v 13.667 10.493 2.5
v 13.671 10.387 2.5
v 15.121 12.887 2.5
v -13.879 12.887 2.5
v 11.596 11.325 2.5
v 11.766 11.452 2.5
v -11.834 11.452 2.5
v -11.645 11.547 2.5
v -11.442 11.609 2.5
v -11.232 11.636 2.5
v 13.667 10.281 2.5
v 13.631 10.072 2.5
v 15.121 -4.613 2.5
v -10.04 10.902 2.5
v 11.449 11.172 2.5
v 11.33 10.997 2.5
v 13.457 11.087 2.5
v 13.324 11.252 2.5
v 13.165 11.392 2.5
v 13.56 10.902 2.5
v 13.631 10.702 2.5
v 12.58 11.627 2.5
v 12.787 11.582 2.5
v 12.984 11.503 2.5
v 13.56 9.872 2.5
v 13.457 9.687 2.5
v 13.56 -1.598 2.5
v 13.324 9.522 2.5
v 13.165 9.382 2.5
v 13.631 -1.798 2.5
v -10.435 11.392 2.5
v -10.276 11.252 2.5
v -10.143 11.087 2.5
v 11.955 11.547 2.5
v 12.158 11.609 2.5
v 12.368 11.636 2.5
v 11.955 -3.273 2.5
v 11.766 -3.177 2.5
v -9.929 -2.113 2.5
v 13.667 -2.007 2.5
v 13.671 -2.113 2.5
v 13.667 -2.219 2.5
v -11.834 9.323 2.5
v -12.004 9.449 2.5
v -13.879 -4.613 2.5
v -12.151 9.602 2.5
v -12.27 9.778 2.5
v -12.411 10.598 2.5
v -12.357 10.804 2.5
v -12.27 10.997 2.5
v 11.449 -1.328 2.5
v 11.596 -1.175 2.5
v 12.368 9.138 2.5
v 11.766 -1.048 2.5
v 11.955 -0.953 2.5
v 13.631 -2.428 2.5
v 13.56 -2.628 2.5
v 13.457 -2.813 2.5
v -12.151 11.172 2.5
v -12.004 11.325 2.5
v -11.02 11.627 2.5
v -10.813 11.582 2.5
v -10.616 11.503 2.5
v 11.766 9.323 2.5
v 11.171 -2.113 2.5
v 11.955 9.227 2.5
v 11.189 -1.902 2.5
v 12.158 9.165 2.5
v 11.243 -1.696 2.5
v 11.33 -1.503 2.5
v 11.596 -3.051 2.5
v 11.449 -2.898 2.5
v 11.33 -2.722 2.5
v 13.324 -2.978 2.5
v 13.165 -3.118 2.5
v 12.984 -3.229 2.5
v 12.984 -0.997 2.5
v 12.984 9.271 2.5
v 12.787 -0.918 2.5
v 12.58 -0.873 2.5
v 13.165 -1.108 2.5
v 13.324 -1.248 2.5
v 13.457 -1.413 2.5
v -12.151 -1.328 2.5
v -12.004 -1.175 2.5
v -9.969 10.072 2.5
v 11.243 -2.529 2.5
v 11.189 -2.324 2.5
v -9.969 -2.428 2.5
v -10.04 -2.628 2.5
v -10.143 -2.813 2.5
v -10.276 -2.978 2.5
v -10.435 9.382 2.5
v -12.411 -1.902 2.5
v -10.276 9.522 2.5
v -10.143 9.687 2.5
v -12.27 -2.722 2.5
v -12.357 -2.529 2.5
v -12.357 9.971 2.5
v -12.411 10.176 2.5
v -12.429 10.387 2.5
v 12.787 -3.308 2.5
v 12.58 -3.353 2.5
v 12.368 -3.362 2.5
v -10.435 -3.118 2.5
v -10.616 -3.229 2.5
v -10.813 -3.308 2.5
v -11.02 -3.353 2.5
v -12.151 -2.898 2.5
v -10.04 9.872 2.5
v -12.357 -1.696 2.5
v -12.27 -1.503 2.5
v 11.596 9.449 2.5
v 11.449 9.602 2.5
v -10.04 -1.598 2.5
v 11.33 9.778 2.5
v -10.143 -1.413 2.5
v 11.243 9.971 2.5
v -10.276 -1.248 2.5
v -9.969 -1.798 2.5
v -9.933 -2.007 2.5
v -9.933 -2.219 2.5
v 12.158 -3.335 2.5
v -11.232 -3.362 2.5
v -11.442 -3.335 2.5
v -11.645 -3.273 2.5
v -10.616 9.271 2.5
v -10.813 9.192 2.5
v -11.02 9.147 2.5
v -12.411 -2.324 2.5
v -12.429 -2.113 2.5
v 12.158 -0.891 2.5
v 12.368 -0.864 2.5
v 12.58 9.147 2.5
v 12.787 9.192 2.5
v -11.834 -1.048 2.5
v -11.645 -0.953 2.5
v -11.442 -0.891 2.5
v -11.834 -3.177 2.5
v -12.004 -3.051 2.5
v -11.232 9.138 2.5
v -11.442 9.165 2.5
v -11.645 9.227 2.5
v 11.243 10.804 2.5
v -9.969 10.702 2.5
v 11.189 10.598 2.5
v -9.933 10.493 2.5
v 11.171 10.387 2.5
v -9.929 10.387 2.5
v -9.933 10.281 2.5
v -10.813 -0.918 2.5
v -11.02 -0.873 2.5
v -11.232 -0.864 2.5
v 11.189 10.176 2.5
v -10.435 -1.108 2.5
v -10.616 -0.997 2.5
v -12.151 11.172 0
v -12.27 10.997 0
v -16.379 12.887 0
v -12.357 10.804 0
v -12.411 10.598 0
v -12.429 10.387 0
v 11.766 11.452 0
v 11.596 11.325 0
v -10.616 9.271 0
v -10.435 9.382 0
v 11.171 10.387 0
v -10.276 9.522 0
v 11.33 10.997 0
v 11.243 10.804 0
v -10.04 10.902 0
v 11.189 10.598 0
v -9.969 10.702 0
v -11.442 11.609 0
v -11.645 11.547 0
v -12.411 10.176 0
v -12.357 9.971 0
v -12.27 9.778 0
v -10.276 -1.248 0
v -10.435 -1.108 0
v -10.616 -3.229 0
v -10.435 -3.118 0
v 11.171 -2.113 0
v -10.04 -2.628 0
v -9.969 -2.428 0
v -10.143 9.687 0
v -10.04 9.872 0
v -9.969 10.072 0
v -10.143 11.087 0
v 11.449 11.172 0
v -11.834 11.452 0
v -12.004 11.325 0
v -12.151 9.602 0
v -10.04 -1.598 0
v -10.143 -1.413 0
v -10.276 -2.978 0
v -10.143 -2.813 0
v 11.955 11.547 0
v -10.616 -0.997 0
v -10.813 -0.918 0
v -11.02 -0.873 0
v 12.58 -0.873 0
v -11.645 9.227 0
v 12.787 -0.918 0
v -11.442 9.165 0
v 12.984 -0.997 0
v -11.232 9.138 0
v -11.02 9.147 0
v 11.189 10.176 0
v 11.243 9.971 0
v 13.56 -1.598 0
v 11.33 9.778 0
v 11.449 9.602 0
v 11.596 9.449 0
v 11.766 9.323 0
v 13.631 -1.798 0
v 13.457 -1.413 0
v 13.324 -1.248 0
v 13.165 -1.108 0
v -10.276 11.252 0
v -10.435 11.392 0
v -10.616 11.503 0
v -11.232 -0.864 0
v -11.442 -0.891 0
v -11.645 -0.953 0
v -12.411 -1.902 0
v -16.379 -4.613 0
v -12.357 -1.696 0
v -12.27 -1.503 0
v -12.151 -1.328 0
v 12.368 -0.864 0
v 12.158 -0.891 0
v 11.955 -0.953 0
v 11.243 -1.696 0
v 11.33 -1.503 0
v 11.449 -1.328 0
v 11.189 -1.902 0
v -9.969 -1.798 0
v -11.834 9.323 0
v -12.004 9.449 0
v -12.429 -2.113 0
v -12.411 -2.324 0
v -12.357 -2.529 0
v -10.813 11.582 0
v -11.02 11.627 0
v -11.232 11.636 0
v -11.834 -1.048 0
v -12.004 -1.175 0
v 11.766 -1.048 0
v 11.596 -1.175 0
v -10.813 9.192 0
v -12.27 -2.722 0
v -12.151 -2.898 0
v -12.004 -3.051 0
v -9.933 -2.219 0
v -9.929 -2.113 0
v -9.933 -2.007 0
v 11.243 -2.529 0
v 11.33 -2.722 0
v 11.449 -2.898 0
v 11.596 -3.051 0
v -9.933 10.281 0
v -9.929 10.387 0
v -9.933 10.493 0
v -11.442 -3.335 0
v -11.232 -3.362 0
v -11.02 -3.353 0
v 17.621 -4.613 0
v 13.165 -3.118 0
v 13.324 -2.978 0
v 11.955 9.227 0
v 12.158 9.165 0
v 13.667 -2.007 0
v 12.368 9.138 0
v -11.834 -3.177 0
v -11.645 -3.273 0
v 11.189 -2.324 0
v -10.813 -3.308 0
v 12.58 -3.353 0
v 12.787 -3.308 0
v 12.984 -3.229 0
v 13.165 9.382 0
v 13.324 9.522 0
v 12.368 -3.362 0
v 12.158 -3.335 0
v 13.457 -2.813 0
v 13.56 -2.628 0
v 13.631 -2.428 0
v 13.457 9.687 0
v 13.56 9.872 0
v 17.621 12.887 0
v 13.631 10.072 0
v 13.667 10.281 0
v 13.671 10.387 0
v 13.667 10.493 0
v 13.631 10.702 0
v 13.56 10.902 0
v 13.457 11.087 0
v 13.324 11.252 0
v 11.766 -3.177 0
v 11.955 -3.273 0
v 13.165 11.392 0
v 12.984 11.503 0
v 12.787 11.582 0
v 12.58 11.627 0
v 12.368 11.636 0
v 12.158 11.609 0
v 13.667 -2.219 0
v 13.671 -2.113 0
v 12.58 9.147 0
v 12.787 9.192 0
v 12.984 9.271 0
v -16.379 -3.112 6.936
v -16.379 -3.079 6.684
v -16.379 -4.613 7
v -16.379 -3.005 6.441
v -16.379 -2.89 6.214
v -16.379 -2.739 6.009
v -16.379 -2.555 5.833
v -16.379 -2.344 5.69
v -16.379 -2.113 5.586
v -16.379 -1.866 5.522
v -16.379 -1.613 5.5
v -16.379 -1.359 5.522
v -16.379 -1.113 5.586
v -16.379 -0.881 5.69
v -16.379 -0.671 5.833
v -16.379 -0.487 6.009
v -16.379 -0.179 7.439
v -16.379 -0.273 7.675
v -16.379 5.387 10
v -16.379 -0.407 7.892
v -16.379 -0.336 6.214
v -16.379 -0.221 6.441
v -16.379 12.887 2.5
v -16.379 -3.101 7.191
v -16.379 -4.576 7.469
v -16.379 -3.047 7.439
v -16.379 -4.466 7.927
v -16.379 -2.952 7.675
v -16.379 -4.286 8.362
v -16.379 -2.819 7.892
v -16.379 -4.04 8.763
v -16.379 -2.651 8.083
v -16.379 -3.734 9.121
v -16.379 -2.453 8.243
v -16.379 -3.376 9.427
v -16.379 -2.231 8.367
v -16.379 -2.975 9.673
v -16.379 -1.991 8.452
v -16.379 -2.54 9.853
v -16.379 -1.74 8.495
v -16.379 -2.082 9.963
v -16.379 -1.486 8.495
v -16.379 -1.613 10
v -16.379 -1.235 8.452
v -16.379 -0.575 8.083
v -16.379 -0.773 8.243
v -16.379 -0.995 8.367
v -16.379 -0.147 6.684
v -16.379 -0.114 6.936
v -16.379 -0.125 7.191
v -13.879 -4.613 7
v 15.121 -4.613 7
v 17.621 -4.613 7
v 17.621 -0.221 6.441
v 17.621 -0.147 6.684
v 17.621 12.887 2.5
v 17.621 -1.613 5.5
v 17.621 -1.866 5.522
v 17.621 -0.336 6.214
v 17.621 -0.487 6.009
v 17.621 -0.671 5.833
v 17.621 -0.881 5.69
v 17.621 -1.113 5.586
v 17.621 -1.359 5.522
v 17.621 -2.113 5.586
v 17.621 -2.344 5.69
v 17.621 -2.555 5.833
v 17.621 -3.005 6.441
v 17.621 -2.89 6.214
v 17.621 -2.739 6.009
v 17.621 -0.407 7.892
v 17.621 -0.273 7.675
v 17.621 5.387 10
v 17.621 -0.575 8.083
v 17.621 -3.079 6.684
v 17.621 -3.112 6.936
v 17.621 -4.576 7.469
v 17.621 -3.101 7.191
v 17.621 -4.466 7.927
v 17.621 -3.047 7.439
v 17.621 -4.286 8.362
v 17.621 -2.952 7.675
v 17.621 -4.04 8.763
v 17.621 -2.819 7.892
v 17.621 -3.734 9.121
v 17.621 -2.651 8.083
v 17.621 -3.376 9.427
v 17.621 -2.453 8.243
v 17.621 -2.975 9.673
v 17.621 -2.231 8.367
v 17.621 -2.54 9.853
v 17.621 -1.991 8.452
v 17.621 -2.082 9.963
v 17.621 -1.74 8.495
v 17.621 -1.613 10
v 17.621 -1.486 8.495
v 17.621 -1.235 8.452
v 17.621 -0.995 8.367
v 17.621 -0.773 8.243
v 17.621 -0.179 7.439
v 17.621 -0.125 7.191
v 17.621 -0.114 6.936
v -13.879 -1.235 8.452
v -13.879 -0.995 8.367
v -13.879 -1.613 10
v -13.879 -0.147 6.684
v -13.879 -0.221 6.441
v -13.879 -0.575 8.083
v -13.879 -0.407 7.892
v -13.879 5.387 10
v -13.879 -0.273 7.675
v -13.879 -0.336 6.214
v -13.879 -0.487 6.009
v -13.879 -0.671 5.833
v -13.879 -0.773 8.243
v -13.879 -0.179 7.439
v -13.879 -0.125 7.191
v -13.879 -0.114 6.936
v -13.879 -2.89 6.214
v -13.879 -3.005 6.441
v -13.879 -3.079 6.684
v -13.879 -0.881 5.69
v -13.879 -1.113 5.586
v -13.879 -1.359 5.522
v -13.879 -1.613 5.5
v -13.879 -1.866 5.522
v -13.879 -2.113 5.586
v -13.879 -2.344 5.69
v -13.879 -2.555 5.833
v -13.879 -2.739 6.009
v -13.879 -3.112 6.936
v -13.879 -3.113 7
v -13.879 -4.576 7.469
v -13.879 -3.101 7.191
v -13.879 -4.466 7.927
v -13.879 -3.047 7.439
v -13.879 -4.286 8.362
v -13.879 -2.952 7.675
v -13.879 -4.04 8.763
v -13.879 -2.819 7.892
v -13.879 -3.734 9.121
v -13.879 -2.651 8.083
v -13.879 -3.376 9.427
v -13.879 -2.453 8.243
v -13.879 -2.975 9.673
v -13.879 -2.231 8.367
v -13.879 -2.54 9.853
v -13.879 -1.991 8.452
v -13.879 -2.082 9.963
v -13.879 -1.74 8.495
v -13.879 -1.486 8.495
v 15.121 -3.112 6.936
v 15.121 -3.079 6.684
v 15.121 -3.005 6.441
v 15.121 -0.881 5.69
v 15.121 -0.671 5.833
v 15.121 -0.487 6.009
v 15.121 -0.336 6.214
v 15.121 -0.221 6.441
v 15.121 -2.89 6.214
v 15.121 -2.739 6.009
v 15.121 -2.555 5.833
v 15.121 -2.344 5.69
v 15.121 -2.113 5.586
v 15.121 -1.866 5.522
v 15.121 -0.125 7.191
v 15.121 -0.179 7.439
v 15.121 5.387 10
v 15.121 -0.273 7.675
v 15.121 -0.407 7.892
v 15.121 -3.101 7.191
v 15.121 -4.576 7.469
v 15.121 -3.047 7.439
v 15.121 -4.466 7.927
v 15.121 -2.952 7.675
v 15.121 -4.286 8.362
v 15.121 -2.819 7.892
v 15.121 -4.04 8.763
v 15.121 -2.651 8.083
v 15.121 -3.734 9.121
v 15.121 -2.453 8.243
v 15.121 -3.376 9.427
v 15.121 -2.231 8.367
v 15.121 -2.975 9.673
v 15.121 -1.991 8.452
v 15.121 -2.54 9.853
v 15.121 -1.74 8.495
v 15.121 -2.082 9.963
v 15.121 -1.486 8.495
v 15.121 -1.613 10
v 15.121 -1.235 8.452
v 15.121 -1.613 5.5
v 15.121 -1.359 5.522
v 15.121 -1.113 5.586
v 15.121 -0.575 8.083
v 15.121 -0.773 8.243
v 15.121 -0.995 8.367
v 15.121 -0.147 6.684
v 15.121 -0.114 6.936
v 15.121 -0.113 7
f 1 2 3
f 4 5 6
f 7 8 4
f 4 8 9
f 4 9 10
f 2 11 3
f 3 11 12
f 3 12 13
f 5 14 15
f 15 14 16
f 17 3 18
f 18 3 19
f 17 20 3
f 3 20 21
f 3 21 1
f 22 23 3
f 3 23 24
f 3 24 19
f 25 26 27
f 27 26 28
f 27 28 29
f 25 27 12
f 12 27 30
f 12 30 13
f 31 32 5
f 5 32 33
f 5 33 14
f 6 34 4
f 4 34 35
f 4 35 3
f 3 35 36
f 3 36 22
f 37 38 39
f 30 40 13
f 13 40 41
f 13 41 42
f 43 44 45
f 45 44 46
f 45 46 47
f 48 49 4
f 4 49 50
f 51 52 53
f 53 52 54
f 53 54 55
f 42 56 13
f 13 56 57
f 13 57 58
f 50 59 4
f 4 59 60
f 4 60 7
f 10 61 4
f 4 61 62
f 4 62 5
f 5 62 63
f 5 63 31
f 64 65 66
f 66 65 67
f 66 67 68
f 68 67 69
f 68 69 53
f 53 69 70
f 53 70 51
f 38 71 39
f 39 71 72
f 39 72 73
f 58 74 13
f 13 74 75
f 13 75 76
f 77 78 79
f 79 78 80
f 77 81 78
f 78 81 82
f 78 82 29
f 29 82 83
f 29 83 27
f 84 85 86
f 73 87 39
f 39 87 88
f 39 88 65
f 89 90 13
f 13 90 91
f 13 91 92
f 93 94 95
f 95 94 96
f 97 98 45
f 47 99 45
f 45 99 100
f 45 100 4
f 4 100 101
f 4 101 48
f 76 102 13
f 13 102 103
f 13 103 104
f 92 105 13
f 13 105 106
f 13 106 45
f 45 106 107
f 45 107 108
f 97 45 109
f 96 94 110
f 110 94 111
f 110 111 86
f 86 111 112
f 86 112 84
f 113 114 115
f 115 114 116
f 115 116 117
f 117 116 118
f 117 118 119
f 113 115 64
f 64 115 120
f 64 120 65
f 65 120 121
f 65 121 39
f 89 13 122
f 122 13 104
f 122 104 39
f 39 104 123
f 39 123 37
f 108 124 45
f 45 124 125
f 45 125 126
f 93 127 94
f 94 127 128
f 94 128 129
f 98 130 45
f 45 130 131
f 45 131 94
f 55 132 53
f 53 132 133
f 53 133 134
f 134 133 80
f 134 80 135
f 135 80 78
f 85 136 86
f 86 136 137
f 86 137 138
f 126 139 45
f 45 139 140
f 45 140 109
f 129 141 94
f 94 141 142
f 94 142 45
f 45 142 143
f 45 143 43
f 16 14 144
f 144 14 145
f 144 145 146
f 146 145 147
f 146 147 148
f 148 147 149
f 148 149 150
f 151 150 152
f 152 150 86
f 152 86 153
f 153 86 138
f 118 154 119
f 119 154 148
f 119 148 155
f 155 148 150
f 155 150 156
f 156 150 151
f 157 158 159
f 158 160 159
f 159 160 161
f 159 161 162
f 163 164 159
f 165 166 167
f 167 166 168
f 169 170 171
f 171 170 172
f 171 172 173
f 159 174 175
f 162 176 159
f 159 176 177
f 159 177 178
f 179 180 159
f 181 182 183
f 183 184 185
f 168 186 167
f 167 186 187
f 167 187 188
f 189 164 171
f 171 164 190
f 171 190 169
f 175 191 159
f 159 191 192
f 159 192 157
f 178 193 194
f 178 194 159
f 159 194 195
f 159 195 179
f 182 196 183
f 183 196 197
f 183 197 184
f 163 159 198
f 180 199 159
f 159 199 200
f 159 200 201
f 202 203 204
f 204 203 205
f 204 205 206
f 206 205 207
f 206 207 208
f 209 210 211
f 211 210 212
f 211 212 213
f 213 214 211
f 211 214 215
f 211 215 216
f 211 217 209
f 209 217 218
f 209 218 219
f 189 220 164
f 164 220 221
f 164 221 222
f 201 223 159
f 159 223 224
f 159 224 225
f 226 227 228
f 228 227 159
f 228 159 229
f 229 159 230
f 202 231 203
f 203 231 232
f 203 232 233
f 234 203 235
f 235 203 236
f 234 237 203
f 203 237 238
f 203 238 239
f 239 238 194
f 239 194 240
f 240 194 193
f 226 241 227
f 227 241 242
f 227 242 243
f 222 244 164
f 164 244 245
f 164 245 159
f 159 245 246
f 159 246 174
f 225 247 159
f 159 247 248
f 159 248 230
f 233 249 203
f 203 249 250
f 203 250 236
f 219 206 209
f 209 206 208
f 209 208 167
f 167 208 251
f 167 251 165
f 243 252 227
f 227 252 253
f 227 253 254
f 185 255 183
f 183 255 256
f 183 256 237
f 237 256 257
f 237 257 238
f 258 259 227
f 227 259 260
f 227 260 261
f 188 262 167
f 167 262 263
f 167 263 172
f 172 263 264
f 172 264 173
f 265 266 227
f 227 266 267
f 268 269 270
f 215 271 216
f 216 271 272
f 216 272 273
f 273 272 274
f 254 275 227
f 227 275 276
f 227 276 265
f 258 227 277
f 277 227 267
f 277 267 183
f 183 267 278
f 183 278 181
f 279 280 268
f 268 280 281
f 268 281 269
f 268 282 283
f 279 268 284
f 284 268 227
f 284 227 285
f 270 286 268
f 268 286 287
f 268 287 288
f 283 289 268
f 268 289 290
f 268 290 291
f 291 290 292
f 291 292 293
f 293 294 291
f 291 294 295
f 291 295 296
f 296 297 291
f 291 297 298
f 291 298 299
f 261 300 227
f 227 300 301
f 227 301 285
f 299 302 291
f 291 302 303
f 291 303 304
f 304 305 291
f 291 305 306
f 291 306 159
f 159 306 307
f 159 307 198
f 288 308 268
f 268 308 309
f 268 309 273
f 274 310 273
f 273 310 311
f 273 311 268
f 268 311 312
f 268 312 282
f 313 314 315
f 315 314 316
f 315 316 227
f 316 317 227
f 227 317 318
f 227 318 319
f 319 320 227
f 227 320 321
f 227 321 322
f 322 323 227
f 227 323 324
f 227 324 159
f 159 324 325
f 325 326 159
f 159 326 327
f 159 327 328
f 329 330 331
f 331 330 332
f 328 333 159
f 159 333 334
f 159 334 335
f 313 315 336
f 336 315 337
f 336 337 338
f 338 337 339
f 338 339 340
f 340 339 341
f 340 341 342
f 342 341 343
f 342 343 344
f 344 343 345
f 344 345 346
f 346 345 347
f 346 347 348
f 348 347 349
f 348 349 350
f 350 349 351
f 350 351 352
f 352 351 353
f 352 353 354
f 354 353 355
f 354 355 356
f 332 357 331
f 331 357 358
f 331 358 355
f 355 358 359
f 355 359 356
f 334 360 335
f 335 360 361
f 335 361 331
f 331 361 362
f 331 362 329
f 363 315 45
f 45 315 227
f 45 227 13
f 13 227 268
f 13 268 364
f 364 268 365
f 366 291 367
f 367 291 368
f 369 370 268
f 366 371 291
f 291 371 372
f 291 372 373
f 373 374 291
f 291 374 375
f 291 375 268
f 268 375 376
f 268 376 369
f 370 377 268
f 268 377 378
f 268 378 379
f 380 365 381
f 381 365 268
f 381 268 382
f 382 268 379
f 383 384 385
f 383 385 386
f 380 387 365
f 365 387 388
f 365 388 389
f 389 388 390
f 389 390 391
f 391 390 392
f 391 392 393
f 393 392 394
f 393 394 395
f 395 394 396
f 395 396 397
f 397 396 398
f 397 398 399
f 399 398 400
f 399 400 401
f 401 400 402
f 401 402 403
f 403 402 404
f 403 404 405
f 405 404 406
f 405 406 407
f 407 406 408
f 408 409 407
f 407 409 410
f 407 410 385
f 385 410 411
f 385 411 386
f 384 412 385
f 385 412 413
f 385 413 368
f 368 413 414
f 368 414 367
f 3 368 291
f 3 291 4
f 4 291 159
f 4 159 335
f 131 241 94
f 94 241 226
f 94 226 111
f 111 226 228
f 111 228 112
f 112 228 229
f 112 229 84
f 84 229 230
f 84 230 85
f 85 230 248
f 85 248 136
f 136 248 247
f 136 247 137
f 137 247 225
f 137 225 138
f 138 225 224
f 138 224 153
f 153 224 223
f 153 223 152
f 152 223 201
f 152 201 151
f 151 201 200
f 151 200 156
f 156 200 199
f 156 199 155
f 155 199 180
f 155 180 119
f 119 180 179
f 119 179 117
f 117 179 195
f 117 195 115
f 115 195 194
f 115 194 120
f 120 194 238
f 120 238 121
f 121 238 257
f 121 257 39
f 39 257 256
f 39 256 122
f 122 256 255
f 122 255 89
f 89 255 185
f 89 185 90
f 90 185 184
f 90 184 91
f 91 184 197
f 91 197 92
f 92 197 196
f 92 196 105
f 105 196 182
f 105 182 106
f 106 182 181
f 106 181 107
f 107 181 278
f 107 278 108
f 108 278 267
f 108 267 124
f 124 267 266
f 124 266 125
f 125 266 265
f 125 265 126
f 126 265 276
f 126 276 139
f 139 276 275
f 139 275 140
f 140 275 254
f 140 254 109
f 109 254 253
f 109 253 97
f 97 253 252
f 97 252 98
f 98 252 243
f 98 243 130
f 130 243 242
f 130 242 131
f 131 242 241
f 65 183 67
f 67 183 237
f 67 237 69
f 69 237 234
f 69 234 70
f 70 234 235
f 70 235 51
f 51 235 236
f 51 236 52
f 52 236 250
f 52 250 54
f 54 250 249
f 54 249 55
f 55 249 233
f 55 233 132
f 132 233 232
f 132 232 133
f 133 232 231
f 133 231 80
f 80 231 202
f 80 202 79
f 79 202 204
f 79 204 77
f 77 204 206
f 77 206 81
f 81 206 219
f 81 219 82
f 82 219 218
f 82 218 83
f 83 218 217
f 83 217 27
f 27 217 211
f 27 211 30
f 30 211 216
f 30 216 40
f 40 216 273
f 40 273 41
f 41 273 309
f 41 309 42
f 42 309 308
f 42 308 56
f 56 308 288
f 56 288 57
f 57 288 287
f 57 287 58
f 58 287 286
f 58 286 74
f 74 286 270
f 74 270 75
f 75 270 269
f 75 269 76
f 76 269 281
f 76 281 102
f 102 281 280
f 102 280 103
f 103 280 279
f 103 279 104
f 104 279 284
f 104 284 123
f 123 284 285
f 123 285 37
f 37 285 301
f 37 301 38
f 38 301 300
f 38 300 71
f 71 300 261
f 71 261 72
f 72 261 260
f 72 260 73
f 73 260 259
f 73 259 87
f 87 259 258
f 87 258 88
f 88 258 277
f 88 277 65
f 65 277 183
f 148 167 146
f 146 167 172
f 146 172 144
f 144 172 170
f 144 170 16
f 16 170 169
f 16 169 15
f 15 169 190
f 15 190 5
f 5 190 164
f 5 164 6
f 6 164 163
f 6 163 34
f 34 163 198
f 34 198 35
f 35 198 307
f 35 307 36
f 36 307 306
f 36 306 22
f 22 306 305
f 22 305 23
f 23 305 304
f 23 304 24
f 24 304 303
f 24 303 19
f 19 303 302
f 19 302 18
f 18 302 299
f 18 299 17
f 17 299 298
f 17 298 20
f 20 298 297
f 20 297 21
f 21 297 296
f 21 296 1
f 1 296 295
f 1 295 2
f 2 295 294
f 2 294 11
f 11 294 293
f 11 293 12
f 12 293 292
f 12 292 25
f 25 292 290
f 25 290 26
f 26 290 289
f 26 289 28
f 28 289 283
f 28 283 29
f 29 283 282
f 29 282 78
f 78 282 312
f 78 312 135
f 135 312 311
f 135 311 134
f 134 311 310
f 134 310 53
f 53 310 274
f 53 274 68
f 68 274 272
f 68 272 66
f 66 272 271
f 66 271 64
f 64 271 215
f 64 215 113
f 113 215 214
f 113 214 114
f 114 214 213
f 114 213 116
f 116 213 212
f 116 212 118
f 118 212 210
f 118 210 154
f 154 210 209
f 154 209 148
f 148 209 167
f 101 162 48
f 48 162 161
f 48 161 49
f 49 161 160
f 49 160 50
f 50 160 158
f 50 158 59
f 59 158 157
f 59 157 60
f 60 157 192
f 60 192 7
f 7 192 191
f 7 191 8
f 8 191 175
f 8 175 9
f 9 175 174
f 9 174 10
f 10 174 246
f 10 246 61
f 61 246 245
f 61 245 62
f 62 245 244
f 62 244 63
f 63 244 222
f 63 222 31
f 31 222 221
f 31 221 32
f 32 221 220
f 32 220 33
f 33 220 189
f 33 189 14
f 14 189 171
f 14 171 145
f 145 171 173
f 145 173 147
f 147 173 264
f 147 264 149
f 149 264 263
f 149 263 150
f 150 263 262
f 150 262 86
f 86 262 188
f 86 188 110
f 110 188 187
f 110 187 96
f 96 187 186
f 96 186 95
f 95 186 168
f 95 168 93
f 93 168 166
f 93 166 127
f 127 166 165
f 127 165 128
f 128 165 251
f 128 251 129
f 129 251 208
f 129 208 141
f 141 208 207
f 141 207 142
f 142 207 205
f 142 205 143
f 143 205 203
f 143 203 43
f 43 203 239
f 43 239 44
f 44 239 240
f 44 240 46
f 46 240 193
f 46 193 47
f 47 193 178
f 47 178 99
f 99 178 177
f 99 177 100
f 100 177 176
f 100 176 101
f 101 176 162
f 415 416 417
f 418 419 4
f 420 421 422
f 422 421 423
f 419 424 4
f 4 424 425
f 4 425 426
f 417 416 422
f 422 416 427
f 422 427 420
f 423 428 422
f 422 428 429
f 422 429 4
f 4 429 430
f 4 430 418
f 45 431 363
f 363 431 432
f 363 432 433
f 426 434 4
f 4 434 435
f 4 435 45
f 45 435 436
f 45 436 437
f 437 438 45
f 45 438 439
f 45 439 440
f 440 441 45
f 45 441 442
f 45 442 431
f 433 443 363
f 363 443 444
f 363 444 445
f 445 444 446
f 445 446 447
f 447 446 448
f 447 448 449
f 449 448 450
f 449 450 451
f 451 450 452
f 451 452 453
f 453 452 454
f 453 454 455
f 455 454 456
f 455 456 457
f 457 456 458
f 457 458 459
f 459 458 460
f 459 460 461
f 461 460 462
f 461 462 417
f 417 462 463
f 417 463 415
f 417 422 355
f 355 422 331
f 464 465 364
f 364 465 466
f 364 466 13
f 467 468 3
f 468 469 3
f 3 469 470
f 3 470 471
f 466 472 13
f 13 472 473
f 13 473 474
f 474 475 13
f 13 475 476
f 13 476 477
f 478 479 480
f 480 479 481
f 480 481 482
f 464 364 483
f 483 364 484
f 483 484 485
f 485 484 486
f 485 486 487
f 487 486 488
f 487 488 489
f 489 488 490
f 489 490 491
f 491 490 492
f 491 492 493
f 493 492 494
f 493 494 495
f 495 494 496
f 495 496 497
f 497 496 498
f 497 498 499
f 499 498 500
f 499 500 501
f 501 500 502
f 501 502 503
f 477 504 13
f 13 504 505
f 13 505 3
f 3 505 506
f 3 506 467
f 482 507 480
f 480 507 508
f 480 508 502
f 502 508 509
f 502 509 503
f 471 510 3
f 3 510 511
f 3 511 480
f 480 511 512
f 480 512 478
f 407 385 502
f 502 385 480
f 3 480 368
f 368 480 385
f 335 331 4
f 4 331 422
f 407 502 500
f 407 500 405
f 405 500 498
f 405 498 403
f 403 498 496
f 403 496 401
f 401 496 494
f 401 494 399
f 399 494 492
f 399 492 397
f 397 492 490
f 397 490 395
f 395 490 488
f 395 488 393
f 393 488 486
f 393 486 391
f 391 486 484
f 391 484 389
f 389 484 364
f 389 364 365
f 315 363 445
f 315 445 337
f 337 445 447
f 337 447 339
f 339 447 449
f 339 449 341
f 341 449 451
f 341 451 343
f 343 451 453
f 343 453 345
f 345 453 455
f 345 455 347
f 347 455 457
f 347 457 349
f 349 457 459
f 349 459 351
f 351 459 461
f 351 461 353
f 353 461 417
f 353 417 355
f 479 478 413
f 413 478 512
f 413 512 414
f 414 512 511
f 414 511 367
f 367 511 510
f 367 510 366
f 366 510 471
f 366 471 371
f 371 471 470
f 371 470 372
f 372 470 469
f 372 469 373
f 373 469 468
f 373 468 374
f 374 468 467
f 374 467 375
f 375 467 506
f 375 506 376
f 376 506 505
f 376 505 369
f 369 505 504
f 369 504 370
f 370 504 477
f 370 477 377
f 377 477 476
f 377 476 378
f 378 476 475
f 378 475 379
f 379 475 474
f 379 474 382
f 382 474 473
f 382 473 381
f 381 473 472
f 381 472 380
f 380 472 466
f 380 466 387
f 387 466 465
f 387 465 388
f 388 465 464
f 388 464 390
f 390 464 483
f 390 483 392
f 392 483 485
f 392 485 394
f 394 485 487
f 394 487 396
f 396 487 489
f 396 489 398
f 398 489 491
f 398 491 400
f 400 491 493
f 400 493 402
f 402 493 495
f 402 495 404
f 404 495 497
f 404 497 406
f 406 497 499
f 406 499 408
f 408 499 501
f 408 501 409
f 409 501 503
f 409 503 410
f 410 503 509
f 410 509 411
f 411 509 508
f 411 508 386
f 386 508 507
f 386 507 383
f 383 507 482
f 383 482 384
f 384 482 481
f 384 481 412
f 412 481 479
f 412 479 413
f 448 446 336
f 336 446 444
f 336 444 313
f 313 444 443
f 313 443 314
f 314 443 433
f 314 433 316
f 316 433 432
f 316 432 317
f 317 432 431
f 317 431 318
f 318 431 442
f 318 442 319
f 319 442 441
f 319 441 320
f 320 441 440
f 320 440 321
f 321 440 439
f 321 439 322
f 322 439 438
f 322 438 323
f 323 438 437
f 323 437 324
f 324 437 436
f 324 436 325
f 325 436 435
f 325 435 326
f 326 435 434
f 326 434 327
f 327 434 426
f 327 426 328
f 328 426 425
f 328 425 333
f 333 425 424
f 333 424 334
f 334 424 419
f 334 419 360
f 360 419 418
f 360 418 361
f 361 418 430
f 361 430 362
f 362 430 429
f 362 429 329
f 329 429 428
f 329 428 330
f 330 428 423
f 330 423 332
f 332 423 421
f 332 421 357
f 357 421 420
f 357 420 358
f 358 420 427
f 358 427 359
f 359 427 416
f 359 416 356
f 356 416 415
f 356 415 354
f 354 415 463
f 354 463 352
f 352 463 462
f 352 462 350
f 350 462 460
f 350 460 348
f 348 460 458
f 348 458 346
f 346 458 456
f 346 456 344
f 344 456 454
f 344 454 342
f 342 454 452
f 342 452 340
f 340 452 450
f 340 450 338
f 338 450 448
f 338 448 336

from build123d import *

# Parameters (mm, degrees)
SKETCH1_W           = 34
SKETCH1_H           = 17.5
SKETCH1_R           = 1.25
BOSS_EXTRUDE1_DEPTH = 2.5
SKETCH2_W           = 2.5
SKETCH2_H           = 17.5
BOSS_EXTRUDE2_DEPTH = 7.5
CHAMFER1_SIZE       = 7.5
FILLET1_R           = 3
SKETCH3_R           = 1.5
CUT_EXTRUDE1_DEPTH  = 35


with BuildPart() as part:
    # Sketch1 → Boss-Extrude1 (new body)
    with BuildSketch(Plane.XY):
        with Locations((0.621428571, 4.137142857)):
            Rectangle(SKETCH1_W, SKETCH1_H)
        with Locations((-11.178571429, -2.112857143)):
            Circle(SKETCH1_R, mode=Mode.SUBTRACT)
        with Locations((12.421428571, -2.112857143)):
            Circle(SKETCH1_R, mode=Mode.SUBTRACT)
        with Locations((12.421428571, 10.387142857)):
            Circle(SKETCH1_R, mode=Mode.SUBTRACT)
        with Locations((-11.178571429, 10.387142857)):
            Circle(SKETCH1_R, mode=Mode.SUBTRACT)
    extrude(amount=BOSS_EXTRUDE1_DEPTH)

    # Sketch2 → Boss-Extrude2 (add)
    with BuildSketch(Plane.XY.offset(2.5)):
        with Locations((-15.128571429, 4.137142857)):
            Rectangle(SKETCH2_W, SKETCH2_H)
        with Locations((16.371428571, 4.137142857)):
            Rectangle(SKETCH2_W, SKETCH2_H)
    extrude(amount=BOSS_EXTRUDE2_DEPTH)

    # Chamfer1
    chamfer1_edges = [part.edges().sort_by_distance(p)[0] for p in [
        (16.371428571, 12.887142857, 10),
        (-15.128571429, 12.887142857, 10),
    ]]
    chamfer(chamfer1_edges, length=CHAMFER1_SIZE)

    # Fillet1
    fillet1_edges = [part.edges().sort_by_distance(p)[0] for p in [
        (-15.128571429, -4.612857143, 10),
        (16.371428571, -4.612857143, 10),
    ]]
    fillet(fillet1_edges, radius=FILLET1_R)

    # Sketch3 → Cut-Extrude1 (cut, through all)
    with BuildSketch(Plane(origin=(17.621428571, 0, 0), x_dir=(0, 0, -1), z_dir=(1, 0, 0))):
        with Locations((-7, -1.612857143)):
            Circle(SKETCH3_R)
    extrude(amount=-CUT_EXTRUDE1_DEPTH, mode=Mode.SUBTRACT)


solid = part.part
